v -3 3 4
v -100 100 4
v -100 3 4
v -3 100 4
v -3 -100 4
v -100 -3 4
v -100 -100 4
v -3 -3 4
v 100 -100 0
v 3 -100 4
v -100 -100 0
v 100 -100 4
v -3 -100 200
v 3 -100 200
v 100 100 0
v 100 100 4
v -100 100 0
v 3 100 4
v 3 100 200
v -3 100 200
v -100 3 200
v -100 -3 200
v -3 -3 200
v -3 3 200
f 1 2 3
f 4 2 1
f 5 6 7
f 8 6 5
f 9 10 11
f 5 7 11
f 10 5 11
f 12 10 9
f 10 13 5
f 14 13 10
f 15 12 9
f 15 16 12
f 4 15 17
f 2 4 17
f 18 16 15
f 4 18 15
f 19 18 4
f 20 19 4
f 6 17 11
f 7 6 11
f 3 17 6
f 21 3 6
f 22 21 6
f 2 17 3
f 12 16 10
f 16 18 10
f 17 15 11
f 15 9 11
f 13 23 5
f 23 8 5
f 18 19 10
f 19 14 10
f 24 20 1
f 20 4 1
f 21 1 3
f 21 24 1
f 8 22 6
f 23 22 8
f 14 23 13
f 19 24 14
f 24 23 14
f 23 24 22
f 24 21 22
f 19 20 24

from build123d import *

# Parameters (mm, degrees)
SZKIC1_W                    = 100
SZKIC1_H                    = 100
DODANIE_WYCI_GNI_CIE1_DEPTH = 4
SZKIC2_W                    = 97
SZKIC2_H                    = 3
DODANIE_WYCI_GNI_CIE2_DEPTH = 200


with BuildPart() as part:
    # Szkic1 → Dodanie-wyciągnięcie1 (new body)
    with BuildSketch(Plane.XY):
        with Locations((-50, 50)):
            Rectangle(SZKIC1_W, SZKIC1_H)
        with Locations((50, 50)):
            Rectangle(SZKIC1_W, SZKIC1_H)
        with Locations((50, -50)):
            Rectangle(SZKIC1_W, SZKIC1_H)
        with Locations((-50, -50)):
            Rectangle(SZKIC1_W, SZKIC1_H)
    extrude(amount=DODANIE_WYCI_GNI_CIE1_DEPTH)

    # Szkic2 → Dodanie-wyciągnięcie2 (add)
    with BuildSketch(Plane.XY):
        with Locations((-51.5, 1.5)):
            Rectangle(SZKIC2_W, SZKIC2_H)
        with Locations((-51.5, -1.5)):
            Rectangle(SZKIC2_W, SZKIC2_H)
        Polygon((3, 100), (0, 100), (0, 0), (0, -100), (3, -100), align=None)
        Polygon((0, 0), (0, 100), (-3, 100), (-3, 3), (-3, 0), align=None)
        Polygon((0, -100), (0, 0), (-3, 0), (-3, -3), (-3, -100), align=None)
    extrude(amount=DODANIE_WYCI_GNI_CIE2_DEPTH)


solid = part.part
